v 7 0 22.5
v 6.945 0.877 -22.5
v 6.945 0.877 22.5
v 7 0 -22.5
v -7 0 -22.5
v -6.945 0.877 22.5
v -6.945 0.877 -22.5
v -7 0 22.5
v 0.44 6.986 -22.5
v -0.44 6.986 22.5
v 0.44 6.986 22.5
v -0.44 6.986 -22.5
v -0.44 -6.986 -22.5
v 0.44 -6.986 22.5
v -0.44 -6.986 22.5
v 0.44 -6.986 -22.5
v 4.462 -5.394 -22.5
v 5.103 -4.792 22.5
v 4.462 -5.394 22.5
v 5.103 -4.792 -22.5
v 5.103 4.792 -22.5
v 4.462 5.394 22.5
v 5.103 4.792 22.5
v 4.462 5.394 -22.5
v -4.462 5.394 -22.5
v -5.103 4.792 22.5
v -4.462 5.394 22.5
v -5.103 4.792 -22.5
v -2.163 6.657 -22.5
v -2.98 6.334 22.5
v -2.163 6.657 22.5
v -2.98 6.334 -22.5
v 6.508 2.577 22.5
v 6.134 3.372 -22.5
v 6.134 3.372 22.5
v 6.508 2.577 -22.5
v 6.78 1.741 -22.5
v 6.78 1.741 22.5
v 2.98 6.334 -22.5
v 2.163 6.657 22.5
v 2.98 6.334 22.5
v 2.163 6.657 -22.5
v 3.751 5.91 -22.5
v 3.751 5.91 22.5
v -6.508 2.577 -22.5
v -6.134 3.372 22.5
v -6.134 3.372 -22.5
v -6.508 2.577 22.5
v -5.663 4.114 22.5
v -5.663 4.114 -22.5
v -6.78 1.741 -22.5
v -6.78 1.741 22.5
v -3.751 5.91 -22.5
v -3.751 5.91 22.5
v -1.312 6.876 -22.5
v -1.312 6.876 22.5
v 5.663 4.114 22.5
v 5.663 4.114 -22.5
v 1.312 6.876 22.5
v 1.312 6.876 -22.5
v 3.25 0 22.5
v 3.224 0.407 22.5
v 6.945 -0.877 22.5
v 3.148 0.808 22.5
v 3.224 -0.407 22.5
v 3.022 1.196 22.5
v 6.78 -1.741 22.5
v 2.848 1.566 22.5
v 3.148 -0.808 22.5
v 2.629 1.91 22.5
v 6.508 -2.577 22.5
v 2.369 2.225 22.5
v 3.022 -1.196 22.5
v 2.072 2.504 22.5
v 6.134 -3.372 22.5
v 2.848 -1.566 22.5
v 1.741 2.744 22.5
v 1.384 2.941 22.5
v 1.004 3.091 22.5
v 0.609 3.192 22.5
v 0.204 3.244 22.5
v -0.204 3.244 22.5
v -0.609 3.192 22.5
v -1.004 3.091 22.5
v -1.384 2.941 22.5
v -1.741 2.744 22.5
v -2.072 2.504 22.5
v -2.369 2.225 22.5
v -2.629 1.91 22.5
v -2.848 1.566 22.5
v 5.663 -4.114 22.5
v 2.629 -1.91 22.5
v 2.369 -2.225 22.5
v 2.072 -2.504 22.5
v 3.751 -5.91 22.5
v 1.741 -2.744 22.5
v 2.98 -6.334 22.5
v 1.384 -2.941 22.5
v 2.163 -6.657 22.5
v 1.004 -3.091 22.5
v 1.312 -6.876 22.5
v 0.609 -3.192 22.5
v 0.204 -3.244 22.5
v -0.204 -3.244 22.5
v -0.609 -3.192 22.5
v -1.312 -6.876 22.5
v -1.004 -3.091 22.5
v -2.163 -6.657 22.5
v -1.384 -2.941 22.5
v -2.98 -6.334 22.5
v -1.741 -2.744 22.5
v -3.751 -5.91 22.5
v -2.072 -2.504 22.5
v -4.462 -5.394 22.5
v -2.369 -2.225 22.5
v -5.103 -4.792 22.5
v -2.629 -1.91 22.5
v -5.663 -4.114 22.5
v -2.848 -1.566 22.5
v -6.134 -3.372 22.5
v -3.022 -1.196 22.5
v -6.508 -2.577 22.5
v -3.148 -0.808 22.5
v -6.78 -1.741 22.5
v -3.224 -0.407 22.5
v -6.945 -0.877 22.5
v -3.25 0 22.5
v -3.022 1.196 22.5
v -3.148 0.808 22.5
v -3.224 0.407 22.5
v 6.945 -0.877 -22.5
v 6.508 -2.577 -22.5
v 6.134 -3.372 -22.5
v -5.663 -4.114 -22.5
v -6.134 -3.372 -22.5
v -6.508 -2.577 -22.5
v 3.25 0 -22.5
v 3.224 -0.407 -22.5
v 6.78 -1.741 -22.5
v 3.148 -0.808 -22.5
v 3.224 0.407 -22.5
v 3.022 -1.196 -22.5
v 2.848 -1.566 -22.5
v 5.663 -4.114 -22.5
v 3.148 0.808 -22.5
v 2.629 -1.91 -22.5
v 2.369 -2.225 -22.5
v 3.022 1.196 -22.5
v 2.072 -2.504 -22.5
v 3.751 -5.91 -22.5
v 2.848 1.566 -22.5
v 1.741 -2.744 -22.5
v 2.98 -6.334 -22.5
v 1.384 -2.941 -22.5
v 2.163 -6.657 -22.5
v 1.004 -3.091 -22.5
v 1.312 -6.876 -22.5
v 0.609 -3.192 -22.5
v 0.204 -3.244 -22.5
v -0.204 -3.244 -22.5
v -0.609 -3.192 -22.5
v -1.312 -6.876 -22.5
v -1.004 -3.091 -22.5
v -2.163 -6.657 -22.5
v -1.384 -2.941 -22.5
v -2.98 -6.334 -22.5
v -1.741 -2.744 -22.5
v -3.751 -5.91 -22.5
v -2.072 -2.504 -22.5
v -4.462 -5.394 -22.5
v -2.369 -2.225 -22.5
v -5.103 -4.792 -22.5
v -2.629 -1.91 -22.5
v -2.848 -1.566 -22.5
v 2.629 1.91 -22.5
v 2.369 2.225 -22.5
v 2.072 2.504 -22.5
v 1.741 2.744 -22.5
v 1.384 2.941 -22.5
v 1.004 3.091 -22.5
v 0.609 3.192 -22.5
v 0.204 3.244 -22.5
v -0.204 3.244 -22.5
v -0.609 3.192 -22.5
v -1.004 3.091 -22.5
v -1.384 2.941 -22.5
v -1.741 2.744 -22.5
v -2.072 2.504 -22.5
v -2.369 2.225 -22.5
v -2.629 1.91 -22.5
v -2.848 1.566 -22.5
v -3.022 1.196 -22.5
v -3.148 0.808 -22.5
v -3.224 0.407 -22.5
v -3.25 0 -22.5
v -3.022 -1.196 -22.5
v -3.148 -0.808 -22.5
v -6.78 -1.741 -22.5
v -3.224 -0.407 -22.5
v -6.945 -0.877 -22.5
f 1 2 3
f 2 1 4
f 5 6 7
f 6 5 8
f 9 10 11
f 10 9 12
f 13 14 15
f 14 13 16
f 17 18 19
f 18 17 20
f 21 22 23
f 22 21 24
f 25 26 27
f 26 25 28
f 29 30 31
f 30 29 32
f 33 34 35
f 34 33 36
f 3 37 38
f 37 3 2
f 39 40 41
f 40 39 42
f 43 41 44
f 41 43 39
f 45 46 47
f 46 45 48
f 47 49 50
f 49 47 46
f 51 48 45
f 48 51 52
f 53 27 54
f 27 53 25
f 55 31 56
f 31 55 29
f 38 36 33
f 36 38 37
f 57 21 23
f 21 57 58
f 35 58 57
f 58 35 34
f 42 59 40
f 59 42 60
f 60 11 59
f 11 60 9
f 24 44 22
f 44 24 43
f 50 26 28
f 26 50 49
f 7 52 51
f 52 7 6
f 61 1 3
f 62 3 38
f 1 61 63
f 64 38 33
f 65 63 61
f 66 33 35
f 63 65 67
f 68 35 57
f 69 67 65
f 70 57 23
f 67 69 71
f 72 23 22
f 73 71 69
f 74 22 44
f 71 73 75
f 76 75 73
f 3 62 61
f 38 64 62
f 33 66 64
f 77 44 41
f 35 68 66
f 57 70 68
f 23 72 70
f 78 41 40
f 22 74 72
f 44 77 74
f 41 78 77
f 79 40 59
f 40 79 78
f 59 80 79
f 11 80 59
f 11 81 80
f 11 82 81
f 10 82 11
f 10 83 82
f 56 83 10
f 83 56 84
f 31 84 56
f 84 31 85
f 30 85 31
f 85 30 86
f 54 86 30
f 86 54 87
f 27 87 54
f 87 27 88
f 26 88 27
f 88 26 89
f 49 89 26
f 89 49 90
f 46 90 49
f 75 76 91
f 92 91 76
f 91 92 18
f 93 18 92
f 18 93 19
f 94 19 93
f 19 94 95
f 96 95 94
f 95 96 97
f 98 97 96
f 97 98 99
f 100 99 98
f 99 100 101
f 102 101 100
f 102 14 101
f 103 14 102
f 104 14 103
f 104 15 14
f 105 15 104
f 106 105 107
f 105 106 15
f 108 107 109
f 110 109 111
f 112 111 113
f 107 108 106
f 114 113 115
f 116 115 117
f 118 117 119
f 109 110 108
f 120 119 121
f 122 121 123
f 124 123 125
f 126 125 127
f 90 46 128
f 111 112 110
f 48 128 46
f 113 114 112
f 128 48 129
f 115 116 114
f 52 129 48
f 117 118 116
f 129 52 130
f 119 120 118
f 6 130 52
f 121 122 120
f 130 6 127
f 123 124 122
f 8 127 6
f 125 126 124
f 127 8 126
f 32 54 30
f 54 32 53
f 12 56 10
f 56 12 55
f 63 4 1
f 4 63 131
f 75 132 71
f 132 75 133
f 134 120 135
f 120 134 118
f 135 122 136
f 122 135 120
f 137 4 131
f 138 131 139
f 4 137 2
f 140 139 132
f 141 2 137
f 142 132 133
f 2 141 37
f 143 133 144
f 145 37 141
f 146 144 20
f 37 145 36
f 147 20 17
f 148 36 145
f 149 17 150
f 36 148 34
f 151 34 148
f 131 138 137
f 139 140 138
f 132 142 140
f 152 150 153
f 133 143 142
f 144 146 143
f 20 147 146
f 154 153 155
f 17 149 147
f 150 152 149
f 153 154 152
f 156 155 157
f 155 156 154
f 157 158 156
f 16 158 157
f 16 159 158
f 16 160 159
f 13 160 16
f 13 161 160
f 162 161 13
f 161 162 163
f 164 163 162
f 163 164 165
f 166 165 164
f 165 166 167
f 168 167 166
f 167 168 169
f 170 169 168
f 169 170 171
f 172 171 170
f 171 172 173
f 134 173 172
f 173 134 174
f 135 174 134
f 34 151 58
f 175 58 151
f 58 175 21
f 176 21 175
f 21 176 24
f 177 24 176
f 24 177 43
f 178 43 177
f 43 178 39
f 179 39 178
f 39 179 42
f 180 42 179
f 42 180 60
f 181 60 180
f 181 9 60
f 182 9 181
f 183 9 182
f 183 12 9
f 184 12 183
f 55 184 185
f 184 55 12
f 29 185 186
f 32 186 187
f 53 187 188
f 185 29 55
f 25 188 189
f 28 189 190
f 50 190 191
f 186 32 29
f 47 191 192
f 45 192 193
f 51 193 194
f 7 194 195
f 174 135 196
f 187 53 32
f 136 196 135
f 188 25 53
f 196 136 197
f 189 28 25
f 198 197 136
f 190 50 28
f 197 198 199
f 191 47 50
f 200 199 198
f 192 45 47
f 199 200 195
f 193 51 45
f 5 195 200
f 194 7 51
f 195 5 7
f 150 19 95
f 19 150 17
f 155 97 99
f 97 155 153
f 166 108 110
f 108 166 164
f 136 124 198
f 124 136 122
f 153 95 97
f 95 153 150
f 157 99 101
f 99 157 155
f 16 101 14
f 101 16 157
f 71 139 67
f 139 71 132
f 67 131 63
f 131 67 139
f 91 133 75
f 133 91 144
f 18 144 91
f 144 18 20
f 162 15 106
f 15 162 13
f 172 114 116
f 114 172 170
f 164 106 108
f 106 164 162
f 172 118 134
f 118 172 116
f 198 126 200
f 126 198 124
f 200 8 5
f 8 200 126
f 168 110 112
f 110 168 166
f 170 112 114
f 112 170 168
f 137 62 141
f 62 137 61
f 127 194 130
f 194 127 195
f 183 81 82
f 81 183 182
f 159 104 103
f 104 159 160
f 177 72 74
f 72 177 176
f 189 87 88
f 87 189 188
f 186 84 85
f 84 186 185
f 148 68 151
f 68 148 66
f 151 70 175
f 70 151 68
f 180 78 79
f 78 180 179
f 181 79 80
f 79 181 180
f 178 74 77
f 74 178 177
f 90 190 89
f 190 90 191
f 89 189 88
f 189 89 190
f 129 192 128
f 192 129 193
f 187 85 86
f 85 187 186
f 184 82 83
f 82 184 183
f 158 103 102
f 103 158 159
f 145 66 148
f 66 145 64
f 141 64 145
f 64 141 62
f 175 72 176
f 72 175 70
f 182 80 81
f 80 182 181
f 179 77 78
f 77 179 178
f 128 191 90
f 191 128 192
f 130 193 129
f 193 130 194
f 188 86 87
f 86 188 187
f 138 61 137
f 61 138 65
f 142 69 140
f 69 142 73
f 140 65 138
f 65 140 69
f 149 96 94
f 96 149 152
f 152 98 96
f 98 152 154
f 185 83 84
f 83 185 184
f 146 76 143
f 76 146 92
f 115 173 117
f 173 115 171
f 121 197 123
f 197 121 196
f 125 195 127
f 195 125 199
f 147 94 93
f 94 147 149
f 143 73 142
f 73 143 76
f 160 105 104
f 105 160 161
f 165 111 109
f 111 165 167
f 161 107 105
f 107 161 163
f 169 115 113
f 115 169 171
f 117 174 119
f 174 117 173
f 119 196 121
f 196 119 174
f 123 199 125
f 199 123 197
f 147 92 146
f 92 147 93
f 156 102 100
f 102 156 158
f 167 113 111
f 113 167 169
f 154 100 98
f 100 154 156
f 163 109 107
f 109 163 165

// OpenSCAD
$fn = 50;


difference() {
	union() {
		translate(v = [0, 0, -22.5000000000]) {
			cylinder(h = 45, r = 7.0000000000);
		}
	}
	union() {
		translate(v = [0, 0, -100.0000000000]) {
			cylinder(h = 200, r = 3.2500000000);
		}
	}
}
